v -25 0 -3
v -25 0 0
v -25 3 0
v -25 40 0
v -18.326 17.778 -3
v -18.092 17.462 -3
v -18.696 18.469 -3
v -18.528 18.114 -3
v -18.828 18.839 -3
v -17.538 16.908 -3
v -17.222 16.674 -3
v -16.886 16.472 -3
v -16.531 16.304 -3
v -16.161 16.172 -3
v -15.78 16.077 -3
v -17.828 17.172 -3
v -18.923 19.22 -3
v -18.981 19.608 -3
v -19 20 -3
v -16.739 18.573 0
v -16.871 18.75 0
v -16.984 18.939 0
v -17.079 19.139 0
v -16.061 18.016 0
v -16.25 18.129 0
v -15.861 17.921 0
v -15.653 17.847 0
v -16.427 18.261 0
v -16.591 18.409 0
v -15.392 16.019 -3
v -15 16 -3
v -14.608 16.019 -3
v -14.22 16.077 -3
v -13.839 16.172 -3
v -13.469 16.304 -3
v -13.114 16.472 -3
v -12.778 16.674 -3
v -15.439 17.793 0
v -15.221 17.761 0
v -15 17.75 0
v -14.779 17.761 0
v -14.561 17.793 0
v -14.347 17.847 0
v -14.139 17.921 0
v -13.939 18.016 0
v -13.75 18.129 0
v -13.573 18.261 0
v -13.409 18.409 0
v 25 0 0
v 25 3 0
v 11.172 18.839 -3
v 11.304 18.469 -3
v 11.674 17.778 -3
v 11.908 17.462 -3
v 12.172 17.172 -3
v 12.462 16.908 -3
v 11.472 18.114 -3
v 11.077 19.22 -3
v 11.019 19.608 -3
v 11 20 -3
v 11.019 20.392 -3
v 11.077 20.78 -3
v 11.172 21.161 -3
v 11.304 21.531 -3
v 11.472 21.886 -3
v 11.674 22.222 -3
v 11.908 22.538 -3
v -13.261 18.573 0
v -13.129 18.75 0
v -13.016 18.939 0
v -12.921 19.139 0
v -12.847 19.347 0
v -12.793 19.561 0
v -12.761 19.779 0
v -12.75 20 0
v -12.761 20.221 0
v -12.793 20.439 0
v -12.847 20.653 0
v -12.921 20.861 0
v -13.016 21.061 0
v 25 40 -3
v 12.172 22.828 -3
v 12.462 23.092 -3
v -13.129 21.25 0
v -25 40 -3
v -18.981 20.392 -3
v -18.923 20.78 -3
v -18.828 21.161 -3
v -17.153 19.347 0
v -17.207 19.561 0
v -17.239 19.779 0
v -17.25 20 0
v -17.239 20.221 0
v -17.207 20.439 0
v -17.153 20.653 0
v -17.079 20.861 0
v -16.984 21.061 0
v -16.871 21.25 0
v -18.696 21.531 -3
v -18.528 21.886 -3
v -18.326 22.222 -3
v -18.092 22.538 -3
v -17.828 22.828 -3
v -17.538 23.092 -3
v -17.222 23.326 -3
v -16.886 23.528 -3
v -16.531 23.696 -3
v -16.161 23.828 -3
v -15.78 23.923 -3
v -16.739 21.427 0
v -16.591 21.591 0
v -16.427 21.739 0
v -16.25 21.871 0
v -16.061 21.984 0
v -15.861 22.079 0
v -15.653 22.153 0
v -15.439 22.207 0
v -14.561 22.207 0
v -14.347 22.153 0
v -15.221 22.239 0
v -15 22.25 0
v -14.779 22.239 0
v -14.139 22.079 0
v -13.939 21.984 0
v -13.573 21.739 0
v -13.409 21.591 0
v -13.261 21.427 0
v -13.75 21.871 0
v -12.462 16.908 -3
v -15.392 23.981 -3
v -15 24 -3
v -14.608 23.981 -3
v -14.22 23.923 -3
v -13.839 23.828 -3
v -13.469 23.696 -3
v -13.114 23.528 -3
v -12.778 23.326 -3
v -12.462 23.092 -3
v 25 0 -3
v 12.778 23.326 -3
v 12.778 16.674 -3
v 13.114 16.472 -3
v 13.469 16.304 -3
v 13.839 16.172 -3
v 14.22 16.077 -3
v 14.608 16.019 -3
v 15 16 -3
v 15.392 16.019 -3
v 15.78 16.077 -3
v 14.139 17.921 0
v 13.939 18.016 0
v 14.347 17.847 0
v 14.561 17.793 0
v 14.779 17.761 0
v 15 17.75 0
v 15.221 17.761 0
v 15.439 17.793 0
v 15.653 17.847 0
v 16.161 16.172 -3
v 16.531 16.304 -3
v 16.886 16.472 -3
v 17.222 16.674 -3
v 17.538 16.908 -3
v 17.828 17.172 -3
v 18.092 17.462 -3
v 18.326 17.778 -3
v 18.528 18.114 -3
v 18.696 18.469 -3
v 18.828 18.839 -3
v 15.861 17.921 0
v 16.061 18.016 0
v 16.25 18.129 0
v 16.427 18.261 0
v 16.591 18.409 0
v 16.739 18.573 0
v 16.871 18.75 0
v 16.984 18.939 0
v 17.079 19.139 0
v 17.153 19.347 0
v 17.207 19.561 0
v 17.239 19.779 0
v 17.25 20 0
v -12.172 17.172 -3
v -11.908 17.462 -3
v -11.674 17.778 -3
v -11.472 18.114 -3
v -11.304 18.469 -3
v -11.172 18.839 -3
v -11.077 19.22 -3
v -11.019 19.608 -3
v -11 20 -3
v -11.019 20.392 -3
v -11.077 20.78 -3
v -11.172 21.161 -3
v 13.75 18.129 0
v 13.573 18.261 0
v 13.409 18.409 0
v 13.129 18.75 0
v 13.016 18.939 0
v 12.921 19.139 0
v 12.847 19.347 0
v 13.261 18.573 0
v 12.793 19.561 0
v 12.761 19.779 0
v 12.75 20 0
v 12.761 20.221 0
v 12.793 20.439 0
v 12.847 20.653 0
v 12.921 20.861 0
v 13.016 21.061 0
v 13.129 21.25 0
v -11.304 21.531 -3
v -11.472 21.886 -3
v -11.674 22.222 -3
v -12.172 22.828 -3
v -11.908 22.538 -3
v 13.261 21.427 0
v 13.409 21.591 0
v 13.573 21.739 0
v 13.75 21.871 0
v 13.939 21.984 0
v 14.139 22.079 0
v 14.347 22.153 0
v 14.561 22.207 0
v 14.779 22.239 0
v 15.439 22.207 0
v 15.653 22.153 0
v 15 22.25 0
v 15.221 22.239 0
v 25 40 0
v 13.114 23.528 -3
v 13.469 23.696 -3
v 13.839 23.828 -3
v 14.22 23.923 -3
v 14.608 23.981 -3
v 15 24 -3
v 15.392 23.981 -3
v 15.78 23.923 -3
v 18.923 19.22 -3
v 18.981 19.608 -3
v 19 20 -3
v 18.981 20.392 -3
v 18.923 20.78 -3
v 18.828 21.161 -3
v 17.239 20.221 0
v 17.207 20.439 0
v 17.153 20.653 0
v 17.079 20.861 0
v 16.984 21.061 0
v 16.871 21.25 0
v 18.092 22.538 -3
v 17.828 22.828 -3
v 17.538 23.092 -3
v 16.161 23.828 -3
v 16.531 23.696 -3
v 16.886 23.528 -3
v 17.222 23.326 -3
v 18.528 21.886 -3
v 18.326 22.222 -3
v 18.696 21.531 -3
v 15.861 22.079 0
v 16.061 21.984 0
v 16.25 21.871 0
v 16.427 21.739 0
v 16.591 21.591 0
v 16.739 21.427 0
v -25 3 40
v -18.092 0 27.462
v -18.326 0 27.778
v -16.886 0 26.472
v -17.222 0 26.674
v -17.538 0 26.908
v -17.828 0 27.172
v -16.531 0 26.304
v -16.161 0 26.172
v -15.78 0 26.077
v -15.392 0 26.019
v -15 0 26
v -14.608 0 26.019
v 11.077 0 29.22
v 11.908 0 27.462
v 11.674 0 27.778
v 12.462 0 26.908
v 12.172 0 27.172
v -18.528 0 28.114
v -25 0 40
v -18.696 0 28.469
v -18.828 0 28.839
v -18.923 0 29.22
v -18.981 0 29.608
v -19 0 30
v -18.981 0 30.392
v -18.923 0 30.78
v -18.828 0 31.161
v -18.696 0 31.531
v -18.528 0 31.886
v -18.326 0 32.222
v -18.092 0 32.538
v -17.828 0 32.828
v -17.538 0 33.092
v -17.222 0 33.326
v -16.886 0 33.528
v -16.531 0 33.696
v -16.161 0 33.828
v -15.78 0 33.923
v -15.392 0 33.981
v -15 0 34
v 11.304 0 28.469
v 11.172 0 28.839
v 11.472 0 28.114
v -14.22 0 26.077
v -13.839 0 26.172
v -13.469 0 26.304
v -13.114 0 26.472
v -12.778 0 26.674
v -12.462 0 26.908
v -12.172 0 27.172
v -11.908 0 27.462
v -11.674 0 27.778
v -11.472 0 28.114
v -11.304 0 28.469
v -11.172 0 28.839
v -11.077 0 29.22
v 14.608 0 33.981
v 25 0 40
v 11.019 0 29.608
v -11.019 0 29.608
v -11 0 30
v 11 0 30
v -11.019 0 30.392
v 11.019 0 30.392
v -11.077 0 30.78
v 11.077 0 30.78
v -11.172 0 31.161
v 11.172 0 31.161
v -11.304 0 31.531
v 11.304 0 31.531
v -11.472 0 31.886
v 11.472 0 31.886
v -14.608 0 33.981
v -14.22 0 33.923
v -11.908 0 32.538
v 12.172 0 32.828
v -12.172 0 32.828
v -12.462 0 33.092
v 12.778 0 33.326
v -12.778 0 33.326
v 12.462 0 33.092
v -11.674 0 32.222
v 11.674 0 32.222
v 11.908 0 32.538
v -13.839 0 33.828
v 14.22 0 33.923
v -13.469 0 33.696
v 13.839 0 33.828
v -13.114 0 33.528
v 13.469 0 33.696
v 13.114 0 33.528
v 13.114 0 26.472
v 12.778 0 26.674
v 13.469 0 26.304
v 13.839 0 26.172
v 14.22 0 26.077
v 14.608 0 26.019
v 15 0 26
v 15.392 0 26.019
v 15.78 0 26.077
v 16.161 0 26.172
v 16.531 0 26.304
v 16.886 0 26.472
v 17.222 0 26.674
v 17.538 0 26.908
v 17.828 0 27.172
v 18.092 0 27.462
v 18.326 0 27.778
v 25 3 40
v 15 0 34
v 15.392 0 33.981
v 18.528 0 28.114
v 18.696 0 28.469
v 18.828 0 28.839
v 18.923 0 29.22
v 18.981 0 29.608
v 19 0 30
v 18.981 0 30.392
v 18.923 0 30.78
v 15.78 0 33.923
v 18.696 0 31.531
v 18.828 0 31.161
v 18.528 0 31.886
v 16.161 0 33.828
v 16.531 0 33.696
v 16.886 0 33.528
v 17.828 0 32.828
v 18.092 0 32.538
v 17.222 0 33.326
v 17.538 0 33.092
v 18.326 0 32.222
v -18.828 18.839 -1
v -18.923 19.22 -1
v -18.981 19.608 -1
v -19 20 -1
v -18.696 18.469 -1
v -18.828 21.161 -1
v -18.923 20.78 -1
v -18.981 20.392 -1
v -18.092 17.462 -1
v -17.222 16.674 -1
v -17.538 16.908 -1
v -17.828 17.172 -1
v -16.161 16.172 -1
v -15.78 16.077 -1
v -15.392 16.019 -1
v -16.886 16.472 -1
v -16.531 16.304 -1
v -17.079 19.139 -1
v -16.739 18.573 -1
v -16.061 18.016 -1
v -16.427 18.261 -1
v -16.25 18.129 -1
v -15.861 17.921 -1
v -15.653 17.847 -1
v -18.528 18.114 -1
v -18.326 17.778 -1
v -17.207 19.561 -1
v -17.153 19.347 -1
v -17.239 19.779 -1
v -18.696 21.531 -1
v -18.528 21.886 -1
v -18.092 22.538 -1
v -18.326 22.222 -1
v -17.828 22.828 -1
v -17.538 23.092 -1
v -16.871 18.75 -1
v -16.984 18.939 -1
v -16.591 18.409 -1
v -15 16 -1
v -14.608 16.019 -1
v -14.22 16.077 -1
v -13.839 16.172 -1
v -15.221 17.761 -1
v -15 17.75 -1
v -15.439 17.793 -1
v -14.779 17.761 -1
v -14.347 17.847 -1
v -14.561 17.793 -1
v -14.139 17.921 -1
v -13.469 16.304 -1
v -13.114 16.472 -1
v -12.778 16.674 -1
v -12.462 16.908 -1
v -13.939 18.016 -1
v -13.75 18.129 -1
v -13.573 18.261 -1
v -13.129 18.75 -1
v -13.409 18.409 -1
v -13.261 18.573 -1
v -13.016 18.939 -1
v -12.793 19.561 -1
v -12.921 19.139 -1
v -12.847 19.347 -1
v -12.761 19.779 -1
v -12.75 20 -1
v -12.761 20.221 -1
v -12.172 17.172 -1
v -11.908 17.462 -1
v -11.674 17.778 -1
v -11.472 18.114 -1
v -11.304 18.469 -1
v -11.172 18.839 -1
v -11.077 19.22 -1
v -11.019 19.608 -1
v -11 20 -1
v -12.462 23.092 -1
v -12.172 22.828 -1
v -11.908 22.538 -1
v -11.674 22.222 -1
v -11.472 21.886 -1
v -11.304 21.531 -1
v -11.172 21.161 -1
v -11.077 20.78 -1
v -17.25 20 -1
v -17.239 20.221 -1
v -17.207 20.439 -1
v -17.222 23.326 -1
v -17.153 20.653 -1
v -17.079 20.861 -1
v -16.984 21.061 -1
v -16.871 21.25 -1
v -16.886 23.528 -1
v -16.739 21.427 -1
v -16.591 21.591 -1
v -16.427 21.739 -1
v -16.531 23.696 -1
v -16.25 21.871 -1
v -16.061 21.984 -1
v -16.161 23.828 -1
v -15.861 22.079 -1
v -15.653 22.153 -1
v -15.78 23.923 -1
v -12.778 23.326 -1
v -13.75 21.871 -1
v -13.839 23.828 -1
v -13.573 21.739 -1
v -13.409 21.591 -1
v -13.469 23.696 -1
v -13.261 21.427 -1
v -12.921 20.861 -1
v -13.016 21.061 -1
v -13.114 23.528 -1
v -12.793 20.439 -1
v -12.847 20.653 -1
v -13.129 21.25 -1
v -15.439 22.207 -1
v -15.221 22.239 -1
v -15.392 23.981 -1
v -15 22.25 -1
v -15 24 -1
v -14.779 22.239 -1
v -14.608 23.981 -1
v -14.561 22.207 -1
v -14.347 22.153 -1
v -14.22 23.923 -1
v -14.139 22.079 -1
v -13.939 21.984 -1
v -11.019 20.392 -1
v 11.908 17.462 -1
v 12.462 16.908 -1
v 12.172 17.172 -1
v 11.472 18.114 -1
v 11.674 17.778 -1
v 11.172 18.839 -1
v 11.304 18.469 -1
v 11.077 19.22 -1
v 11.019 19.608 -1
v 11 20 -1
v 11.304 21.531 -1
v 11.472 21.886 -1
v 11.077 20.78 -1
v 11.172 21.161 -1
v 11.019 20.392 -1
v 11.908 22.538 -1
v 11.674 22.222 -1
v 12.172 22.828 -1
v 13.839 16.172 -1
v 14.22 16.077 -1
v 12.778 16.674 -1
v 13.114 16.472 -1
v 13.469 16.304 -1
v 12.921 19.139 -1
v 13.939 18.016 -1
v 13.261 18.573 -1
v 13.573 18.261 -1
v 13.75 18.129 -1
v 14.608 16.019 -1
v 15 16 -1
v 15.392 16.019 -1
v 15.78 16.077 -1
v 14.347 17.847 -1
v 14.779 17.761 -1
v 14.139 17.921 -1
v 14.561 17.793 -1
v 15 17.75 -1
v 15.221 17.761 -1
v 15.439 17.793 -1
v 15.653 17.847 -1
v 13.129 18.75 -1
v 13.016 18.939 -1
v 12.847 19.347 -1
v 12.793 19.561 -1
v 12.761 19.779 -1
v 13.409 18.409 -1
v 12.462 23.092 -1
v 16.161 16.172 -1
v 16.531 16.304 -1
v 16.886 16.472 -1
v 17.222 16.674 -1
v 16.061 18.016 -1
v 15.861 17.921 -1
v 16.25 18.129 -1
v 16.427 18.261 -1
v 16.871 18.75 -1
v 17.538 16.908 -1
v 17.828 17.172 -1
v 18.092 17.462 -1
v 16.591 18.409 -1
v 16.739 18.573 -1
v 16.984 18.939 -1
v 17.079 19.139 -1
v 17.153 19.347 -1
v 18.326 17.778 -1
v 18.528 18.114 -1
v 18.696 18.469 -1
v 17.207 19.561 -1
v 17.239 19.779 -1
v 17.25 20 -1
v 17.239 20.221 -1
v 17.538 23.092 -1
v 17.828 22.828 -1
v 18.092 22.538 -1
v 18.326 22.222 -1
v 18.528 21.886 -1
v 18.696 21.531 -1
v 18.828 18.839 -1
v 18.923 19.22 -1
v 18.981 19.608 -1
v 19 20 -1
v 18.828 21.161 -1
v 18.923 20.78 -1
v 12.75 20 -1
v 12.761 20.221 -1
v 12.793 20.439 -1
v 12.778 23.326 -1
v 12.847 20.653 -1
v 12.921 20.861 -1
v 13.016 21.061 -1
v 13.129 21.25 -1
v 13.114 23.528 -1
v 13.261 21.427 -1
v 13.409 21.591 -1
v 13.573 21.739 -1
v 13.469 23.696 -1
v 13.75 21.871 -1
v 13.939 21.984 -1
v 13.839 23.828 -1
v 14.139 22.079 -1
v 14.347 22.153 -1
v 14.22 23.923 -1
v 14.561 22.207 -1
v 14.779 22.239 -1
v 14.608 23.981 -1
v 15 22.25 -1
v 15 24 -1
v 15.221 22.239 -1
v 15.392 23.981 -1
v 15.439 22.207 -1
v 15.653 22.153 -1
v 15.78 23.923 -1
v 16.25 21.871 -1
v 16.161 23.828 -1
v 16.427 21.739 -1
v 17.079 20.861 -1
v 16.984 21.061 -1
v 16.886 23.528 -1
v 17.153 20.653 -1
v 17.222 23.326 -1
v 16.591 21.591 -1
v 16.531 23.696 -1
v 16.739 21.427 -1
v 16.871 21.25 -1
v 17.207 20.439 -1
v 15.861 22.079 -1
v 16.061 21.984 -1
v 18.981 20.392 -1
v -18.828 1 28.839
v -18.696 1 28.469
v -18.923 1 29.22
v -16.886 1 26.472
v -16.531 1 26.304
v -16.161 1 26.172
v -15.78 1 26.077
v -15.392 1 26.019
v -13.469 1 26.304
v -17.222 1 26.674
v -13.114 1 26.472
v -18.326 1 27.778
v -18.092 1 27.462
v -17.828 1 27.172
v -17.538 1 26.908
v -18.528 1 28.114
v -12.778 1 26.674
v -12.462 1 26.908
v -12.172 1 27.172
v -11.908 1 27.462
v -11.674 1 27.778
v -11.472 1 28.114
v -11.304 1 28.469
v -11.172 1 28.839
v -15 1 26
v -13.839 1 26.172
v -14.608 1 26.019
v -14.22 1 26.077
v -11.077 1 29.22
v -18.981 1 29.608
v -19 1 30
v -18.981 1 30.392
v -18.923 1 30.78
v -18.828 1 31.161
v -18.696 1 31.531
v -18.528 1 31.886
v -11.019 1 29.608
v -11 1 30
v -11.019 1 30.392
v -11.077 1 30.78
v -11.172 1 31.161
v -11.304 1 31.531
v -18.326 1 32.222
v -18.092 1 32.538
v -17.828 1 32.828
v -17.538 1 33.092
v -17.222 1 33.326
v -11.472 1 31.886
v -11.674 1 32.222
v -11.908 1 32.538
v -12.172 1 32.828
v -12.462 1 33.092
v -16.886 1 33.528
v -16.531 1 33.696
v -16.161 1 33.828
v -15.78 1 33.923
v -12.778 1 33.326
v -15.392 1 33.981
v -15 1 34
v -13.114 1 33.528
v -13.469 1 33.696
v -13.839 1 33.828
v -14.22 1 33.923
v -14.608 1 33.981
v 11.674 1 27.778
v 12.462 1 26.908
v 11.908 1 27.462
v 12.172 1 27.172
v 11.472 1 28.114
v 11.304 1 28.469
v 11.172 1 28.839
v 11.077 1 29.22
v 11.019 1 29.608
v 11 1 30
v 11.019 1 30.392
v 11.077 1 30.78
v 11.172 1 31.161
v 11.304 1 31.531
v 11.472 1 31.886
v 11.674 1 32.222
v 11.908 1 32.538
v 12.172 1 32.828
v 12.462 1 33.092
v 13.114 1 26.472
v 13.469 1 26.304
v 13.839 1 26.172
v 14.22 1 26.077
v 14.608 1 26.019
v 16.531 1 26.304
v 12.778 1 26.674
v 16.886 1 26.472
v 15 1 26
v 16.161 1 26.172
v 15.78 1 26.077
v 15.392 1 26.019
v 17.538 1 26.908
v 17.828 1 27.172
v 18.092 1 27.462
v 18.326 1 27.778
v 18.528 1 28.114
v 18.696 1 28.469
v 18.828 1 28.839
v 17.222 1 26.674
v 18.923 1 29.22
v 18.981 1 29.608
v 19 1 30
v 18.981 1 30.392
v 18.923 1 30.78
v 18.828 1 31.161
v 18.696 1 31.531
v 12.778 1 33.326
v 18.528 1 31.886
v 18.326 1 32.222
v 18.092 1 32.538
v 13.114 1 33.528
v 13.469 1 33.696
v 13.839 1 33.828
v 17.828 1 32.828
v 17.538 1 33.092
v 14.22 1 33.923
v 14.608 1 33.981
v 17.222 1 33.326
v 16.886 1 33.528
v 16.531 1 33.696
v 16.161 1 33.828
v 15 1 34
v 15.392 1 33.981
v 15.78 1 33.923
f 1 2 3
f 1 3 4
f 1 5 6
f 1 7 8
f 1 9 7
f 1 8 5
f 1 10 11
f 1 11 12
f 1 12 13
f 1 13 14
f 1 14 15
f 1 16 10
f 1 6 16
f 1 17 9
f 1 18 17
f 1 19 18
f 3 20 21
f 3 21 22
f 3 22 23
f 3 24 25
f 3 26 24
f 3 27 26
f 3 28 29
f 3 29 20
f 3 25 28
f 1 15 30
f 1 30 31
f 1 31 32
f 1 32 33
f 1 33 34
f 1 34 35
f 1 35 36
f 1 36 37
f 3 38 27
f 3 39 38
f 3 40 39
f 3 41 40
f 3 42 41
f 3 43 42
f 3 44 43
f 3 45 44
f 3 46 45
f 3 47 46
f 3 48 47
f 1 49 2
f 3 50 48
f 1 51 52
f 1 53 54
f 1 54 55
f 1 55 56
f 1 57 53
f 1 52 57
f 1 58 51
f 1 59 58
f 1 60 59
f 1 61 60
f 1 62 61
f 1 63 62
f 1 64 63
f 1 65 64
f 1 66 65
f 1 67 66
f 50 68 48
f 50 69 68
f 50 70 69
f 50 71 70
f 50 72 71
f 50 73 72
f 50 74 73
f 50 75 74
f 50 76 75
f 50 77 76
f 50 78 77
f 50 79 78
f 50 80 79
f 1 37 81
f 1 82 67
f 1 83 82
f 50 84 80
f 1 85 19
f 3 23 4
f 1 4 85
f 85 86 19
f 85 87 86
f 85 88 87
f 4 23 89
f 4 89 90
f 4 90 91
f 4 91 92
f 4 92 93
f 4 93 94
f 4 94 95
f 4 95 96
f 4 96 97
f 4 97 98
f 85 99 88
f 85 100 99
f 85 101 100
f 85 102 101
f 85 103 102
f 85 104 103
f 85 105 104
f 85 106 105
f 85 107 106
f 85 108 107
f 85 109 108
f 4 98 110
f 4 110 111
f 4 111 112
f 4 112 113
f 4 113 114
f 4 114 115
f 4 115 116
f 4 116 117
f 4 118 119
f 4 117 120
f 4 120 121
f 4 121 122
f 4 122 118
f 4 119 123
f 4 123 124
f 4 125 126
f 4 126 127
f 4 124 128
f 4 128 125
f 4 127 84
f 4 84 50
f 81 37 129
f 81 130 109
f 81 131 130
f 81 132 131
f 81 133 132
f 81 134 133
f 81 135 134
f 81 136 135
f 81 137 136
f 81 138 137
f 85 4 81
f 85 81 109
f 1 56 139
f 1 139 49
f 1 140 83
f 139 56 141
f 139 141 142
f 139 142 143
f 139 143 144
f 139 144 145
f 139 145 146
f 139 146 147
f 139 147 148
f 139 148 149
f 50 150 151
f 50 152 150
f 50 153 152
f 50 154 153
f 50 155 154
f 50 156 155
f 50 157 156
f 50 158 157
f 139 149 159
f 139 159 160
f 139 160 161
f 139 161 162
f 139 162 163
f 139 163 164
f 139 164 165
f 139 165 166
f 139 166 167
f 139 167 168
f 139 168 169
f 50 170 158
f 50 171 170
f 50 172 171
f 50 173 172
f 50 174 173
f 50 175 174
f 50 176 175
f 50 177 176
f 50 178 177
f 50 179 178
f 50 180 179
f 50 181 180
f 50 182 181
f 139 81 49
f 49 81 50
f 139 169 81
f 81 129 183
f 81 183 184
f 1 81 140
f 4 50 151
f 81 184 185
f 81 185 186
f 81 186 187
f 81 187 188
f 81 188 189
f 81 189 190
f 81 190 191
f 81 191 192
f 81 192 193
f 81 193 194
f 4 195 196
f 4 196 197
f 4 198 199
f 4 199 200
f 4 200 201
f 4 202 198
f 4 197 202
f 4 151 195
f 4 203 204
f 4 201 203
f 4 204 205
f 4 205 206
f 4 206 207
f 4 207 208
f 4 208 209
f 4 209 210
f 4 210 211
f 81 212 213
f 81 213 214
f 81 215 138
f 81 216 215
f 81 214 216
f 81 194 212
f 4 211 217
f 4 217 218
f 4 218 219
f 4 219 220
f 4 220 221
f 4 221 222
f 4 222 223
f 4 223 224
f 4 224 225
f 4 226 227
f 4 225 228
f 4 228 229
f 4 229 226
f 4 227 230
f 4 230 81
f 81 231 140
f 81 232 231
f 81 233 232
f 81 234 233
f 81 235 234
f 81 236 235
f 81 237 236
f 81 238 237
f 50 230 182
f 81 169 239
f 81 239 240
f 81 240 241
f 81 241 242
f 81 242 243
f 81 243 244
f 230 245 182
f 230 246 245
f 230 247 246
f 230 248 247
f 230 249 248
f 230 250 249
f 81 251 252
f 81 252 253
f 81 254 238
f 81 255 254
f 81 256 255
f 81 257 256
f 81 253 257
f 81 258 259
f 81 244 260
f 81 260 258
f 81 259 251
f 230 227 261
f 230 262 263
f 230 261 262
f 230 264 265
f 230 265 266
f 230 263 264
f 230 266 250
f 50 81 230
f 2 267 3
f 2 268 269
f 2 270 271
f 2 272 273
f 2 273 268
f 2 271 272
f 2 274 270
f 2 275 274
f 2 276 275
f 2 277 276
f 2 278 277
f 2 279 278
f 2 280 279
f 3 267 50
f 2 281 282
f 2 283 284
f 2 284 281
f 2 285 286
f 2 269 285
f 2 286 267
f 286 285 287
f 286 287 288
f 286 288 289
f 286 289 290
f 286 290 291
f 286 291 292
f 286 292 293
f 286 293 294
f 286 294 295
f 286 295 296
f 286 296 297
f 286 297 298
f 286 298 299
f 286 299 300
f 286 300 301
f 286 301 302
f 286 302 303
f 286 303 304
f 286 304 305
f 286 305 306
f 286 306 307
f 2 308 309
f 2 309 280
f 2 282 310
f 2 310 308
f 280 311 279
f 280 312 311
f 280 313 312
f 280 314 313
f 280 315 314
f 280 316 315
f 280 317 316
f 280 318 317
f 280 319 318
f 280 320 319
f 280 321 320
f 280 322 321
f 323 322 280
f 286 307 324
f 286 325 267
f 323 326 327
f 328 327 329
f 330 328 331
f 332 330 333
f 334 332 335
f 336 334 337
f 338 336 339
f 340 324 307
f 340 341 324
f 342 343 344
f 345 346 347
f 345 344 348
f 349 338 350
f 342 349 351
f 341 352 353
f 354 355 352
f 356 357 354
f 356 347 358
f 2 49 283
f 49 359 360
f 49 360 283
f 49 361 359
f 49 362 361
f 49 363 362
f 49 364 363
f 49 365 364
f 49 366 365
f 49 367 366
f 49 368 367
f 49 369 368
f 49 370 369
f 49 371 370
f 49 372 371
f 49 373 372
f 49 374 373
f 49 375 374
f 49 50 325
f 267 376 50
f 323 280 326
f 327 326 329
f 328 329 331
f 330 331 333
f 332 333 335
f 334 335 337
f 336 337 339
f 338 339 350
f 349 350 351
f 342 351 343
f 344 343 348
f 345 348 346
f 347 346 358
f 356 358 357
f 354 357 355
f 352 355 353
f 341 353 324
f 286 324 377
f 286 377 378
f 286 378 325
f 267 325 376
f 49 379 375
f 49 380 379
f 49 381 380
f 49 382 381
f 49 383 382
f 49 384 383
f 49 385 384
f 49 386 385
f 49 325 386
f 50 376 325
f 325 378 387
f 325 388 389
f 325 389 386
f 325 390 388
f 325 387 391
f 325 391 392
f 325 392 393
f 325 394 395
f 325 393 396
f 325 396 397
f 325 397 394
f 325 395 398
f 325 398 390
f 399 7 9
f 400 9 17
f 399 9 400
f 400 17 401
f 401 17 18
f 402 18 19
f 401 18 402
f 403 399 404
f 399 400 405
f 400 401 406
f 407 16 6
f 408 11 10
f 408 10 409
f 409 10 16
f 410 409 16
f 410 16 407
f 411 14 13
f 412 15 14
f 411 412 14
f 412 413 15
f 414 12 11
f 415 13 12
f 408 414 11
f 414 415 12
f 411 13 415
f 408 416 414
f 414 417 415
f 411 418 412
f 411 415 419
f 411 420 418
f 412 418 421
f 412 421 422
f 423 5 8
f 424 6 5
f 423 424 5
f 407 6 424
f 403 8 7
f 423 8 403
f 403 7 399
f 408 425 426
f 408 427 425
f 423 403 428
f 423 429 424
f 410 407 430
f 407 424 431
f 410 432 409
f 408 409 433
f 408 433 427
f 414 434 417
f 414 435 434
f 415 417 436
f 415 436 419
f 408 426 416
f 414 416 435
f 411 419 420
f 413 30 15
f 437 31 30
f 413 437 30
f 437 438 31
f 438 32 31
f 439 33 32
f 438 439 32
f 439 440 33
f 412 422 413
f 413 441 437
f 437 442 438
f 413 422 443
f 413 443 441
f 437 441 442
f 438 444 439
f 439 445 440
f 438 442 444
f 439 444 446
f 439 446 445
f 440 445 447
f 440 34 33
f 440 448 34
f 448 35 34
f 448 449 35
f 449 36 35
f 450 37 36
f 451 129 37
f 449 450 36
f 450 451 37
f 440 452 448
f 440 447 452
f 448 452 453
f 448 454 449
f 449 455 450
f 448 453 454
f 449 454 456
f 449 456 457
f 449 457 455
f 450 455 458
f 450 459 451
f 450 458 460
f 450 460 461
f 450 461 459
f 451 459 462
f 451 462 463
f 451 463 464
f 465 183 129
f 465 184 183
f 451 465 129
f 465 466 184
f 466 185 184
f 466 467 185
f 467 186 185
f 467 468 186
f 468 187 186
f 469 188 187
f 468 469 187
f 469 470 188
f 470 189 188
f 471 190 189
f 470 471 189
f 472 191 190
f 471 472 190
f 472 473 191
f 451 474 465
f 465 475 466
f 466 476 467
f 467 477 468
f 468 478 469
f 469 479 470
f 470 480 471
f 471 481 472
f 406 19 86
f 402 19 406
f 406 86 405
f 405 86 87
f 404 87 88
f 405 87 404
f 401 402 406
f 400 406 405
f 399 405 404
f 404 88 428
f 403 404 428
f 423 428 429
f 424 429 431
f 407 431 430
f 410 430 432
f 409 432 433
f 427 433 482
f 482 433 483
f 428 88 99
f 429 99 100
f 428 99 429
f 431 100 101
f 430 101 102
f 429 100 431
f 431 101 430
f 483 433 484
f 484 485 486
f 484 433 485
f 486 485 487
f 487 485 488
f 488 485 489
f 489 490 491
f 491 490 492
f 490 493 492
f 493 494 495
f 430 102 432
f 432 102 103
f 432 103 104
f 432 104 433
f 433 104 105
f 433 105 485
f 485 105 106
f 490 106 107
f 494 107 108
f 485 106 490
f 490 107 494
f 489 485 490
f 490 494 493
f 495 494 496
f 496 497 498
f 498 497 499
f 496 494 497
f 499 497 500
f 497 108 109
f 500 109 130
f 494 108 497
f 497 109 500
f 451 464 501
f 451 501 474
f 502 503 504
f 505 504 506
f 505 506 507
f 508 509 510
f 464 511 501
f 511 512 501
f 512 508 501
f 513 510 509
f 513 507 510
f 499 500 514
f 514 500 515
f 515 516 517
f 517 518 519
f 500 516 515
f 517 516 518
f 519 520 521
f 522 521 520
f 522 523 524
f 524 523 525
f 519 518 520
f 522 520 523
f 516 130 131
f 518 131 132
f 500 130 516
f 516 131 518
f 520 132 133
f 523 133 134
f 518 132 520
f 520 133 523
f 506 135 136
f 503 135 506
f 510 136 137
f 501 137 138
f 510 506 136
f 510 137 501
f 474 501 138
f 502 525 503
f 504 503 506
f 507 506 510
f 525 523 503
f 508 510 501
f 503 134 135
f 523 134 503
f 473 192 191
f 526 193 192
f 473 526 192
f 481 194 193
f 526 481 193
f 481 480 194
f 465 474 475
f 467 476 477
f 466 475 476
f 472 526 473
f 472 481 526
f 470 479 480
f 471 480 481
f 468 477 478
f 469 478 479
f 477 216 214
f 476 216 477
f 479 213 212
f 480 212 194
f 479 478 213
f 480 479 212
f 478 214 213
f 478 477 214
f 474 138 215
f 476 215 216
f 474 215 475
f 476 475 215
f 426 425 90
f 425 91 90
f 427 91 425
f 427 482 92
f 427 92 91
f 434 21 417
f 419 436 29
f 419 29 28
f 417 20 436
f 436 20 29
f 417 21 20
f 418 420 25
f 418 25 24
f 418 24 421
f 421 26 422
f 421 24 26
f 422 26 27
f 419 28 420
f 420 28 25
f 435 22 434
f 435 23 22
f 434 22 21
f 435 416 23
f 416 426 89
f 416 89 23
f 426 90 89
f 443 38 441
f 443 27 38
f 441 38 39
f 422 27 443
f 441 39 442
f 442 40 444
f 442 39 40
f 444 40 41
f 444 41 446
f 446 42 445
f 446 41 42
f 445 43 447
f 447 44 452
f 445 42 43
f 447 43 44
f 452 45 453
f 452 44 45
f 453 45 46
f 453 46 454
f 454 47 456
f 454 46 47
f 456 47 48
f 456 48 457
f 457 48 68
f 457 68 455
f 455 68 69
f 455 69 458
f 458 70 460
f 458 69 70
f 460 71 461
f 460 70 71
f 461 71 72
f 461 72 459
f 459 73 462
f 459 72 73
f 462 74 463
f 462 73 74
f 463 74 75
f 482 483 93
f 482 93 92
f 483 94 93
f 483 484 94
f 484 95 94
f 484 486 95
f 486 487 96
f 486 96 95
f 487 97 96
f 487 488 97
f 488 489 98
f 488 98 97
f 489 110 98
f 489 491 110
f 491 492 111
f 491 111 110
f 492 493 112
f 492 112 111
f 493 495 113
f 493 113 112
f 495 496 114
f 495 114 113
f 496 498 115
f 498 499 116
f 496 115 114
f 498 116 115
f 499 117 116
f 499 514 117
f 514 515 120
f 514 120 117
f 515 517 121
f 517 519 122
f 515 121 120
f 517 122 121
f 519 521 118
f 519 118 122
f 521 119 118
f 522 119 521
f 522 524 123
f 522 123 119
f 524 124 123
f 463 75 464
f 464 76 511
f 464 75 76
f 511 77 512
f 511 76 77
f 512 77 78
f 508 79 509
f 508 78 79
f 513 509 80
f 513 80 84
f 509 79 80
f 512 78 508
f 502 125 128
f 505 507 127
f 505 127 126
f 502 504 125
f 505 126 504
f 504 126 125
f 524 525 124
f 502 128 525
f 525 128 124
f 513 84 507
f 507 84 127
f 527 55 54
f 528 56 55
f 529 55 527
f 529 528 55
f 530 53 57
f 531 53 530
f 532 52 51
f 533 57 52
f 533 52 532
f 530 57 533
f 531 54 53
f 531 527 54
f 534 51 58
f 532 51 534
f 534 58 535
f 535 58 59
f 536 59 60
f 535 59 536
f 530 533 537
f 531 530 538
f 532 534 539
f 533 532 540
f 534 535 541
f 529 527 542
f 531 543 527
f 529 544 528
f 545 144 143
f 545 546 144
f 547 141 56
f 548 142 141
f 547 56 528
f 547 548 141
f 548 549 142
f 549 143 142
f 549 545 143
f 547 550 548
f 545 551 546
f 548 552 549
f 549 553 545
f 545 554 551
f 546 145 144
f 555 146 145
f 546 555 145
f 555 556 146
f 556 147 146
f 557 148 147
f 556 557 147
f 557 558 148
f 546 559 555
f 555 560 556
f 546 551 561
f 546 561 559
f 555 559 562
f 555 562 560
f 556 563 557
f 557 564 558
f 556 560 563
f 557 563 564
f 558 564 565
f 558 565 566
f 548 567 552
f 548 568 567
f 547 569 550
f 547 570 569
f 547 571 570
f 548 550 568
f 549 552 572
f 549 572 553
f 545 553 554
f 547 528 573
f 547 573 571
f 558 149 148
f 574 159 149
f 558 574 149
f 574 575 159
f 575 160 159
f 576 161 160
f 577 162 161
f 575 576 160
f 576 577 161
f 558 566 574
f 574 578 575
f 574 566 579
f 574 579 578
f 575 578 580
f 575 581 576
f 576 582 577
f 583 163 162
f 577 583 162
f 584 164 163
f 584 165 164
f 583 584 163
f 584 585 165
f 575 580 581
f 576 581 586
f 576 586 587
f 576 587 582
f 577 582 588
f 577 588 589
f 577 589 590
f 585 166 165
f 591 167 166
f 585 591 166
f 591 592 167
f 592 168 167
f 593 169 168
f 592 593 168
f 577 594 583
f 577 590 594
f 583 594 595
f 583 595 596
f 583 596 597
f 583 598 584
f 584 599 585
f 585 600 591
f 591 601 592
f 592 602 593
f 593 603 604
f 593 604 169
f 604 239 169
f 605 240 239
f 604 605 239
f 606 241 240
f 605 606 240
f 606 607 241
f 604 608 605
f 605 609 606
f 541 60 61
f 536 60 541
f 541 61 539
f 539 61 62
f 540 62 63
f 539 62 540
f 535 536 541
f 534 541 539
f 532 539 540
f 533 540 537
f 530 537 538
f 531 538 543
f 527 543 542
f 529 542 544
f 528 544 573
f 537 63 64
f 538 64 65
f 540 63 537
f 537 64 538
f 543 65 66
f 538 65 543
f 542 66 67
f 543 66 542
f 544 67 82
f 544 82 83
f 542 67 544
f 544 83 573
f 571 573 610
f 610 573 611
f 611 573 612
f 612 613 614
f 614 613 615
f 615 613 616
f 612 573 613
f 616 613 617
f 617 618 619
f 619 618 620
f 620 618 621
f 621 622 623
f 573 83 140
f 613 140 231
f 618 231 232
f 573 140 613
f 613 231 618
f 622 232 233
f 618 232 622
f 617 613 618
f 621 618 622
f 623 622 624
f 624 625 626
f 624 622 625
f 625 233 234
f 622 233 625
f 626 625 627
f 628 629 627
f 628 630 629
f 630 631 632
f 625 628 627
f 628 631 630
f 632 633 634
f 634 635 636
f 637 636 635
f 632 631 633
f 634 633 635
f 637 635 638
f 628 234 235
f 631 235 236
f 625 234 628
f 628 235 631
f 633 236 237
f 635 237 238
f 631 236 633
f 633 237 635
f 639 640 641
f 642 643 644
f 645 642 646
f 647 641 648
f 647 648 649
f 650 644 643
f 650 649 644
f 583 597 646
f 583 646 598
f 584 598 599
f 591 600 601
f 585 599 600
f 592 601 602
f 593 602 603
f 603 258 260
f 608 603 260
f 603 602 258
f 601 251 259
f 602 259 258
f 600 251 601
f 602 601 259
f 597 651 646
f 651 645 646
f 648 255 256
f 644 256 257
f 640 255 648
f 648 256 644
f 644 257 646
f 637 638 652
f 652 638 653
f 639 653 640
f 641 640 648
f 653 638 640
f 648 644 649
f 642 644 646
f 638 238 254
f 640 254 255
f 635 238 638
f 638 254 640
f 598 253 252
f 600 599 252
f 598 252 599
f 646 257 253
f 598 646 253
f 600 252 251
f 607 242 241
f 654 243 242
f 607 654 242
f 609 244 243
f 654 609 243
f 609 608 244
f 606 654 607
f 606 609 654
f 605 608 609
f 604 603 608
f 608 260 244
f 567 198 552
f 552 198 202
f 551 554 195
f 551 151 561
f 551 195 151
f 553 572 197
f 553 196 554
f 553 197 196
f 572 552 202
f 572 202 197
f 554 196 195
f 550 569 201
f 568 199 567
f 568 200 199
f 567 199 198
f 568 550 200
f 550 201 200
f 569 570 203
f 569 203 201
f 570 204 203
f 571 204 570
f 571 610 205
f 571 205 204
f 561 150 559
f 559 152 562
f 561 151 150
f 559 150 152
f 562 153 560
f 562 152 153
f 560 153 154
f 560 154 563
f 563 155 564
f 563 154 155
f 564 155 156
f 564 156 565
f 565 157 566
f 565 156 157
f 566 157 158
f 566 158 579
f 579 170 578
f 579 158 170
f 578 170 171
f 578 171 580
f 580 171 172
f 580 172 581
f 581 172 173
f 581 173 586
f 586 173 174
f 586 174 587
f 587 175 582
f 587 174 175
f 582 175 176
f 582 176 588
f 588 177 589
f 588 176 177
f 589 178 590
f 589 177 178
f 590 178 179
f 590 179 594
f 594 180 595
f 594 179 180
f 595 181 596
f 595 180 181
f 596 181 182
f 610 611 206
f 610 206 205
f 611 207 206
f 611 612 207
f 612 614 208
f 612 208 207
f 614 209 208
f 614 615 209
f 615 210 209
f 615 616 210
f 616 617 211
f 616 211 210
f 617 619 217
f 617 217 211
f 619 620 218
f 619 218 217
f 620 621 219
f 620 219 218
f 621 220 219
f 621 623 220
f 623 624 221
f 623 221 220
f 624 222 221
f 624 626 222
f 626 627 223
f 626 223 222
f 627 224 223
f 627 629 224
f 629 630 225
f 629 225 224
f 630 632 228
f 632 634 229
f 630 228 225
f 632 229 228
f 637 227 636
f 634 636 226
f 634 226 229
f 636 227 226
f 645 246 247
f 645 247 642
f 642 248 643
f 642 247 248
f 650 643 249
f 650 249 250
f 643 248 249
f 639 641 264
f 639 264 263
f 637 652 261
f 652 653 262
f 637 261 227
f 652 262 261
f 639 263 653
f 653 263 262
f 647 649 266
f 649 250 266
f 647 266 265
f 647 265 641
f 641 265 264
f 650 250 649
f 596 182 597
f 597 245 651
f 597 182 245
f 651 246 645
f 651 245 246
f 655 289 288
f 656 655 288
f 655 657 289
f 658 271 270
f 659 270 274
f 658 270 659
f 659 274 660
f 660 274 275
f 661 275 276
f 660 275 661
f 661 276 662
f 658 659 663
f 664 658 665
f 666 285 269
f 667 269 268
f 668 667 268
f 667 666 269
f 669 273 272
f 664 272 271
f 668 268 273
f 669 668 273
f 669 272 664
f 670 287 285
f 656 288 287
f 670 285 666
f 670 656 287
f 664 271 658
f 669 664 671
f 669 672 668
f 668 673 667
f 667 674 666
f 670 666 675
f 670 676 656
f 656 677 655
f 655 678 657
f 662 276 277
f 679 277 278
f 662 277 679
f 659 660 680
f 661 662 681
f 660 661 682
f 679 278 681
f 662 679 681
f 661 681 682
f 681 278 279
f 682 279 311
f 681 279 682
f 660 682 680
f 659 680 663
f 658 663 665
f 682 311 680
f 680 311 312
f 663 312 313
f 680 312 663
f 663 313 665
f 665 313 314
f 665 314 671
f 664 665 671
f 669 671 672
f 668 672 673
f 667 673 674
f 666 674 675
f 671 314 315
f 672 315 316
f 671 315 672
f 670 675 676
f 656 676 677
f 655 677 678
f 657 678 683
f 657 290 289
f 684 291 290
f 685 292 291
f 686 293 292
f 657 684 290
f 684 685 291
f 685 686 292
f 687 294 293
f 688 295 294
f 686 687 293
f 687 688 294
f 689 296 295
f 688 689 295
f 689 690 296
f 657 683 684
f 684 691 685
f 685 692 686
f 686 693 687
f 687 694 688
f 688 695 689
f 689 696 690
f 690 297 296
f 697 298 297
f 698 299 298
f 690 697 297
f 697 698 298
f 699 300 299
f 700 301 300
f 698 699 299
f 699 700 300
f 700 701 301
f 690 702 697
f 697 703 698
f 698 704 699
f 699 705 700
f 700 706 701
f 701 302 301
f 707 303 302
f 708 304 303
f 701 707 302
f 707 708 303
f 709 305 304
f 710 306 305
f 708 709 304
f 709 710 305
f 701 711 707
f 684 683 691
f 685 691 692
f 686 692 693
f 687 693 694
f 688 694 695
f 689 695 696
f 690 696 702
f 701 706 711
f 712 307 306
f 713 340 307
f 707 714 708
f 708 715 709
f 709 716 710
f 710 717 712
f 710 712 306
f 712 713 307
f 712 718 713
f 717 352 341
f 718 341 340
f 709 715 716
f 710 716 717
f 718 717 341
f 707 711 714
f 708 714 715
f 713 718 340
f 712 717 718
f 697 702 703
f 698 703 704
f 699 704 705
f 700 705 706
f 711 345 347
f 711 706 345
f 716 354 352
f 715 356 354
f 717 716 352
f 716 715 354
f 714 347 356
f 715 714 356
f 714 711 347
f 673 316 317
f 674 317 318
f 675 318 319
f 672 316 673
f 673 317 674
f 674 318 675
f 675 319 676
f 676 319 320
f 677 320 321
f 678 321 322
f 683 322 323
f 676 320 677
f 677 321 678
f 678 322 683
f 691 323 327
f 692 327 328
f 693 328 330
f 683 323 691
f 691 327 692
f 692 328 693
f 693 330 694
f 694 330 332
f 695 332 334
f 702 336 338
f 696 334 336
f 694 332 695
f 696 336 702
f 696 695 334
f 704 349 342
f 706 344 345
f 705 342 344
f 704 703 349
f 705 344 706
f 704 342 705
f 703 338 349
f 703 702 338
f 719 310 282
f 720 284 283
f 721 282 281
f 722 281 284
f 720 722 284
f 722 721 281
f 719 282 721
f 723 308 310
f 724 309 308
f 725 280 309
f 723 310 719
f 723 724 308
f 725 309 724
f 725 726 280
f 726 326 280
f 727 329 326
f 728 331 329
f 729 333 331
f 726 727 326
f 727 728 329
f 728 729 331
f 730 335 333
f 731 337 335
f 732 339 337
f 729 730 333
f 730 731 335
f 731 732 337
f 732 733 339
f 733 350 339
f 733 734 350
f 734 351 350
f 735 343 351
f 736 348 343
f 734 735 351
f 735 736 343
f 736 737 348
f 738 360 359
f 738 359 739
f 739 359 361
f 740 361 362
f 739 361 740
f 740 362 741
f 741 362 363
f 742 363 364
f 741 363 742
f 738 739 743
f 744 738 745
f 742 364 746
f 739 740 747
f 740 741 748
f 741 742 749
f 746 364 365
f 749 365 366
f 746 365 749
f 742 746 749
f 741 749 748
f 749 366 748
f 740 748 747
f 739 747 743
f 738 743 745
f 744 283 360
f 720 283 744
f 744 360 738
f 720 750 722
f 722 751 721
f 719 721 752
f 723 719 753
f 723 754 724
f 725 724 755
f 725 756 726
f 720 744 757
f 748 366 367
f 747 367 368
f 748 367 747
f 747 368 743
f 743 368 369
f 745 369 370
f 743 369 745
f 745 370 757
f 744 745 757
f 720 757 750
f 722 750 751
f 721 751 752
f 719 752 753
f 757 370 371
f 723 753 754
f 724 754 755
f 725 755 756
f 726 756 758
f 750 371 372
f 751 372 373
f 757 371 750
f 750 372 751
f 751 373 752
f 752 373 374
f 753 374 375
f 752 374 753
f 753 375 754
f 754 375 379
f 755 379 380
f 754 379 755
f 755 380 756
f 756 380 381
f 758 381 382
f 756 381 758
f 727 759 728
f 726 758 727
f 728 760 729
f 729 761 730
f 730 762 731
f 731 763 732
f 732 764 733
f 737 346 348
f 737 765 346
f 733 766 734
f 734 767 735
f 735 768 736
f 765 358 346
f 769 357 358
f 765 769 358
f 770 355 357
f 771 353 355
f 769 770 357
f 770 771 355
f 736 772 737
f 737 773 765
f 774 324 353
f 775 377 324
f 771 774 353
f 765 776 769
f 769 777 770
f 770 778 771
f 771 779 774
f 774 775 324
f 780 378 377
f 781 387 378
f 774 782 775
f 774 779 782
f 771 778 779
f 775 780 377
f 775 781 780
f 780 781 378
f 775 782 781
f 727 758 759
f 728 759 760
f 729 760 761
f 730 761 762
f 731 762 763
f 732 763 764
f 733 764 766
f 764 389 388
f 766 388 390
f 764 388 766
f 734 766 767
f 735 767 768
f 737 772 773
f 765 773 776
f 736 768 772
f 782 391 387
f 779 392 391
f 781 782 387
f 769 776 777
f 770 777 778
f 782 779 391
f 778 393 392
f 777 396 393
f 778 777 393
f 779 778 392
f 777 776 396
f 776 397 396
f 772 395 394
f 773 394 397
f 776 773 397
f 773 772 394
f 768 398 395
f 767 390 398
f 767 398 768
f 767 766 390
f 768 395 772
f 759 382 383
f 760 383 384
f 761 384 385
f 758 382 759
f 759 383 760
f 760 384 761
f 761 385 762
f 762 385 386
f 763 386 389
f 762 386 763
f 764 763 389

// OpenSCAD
// L-bracket with countersunk holes
$fn = 64;                       // smoothness for cylinders

//---------------------------------
// Geometry parameters
//---------------------------------
thickness = 3;                  // plate thickness
width     = 50;                 // width (X)
length    = 40;                 // depth / height (Y or Z)
edge_off  = 10;                 // distance of holes from edge
hole_d    = 4.5;                // clearance hole diameter (M4)
csk_d     = 8;                  // countersink diameter
csk_depth = 2;                  // countersink depth

//---------------------------------
// Helper modules
//---------------------------------
module csk_hole_z(x, y)
{
    // axis: Z  (horizontal flange)
    translate([x, y, -thickness])
    {
        // countersink
        cylinder(d = csk_d, h = csk_depth, center = false);
        // through hole
        cylinder(d = hole_d, h = thickness + 2, center = false);
    }
}

module csk_hole_y(x, z)
{
    // axis: Y  (vertical flange)
    // countersink
    translate([x, thickness - csk_depth, z])
        rotate([90, 0, 0]) cylinder(d = csk_d, h = csk_depth, center = false);
    // through hole
    translate([x, 0, z])
        rotate([90, 0, 0]) cylinder(d = hole_d, h = thickness + 2, center = false);
}

//---------------------------------
// Bracket assembly
//---------------------------------
difference()
{
    // Plates
    union()
    {
        // Horizontal flange (lies in XY, thickness in -Z)
        translate([-width/2, 0, -thickness])
            cube([width, length, thickness], center = false);

        // Vertical flange (lies in XZ, thickness in +Y)
        translate([-width/2, 0, 0])
            cube([width, thickness, length], center = false);
    }

    // Holes in horizontal flange
    for (x = [-width/2 + edge_off, width/2 - edge_off])
        csk_hole_z(x, length/2);

    // Holes in vertical flange
    for (x = [-width/2 + edge_off, width/2 - edge_off])
        csk_hole_y(x, length - edge_off);
}
